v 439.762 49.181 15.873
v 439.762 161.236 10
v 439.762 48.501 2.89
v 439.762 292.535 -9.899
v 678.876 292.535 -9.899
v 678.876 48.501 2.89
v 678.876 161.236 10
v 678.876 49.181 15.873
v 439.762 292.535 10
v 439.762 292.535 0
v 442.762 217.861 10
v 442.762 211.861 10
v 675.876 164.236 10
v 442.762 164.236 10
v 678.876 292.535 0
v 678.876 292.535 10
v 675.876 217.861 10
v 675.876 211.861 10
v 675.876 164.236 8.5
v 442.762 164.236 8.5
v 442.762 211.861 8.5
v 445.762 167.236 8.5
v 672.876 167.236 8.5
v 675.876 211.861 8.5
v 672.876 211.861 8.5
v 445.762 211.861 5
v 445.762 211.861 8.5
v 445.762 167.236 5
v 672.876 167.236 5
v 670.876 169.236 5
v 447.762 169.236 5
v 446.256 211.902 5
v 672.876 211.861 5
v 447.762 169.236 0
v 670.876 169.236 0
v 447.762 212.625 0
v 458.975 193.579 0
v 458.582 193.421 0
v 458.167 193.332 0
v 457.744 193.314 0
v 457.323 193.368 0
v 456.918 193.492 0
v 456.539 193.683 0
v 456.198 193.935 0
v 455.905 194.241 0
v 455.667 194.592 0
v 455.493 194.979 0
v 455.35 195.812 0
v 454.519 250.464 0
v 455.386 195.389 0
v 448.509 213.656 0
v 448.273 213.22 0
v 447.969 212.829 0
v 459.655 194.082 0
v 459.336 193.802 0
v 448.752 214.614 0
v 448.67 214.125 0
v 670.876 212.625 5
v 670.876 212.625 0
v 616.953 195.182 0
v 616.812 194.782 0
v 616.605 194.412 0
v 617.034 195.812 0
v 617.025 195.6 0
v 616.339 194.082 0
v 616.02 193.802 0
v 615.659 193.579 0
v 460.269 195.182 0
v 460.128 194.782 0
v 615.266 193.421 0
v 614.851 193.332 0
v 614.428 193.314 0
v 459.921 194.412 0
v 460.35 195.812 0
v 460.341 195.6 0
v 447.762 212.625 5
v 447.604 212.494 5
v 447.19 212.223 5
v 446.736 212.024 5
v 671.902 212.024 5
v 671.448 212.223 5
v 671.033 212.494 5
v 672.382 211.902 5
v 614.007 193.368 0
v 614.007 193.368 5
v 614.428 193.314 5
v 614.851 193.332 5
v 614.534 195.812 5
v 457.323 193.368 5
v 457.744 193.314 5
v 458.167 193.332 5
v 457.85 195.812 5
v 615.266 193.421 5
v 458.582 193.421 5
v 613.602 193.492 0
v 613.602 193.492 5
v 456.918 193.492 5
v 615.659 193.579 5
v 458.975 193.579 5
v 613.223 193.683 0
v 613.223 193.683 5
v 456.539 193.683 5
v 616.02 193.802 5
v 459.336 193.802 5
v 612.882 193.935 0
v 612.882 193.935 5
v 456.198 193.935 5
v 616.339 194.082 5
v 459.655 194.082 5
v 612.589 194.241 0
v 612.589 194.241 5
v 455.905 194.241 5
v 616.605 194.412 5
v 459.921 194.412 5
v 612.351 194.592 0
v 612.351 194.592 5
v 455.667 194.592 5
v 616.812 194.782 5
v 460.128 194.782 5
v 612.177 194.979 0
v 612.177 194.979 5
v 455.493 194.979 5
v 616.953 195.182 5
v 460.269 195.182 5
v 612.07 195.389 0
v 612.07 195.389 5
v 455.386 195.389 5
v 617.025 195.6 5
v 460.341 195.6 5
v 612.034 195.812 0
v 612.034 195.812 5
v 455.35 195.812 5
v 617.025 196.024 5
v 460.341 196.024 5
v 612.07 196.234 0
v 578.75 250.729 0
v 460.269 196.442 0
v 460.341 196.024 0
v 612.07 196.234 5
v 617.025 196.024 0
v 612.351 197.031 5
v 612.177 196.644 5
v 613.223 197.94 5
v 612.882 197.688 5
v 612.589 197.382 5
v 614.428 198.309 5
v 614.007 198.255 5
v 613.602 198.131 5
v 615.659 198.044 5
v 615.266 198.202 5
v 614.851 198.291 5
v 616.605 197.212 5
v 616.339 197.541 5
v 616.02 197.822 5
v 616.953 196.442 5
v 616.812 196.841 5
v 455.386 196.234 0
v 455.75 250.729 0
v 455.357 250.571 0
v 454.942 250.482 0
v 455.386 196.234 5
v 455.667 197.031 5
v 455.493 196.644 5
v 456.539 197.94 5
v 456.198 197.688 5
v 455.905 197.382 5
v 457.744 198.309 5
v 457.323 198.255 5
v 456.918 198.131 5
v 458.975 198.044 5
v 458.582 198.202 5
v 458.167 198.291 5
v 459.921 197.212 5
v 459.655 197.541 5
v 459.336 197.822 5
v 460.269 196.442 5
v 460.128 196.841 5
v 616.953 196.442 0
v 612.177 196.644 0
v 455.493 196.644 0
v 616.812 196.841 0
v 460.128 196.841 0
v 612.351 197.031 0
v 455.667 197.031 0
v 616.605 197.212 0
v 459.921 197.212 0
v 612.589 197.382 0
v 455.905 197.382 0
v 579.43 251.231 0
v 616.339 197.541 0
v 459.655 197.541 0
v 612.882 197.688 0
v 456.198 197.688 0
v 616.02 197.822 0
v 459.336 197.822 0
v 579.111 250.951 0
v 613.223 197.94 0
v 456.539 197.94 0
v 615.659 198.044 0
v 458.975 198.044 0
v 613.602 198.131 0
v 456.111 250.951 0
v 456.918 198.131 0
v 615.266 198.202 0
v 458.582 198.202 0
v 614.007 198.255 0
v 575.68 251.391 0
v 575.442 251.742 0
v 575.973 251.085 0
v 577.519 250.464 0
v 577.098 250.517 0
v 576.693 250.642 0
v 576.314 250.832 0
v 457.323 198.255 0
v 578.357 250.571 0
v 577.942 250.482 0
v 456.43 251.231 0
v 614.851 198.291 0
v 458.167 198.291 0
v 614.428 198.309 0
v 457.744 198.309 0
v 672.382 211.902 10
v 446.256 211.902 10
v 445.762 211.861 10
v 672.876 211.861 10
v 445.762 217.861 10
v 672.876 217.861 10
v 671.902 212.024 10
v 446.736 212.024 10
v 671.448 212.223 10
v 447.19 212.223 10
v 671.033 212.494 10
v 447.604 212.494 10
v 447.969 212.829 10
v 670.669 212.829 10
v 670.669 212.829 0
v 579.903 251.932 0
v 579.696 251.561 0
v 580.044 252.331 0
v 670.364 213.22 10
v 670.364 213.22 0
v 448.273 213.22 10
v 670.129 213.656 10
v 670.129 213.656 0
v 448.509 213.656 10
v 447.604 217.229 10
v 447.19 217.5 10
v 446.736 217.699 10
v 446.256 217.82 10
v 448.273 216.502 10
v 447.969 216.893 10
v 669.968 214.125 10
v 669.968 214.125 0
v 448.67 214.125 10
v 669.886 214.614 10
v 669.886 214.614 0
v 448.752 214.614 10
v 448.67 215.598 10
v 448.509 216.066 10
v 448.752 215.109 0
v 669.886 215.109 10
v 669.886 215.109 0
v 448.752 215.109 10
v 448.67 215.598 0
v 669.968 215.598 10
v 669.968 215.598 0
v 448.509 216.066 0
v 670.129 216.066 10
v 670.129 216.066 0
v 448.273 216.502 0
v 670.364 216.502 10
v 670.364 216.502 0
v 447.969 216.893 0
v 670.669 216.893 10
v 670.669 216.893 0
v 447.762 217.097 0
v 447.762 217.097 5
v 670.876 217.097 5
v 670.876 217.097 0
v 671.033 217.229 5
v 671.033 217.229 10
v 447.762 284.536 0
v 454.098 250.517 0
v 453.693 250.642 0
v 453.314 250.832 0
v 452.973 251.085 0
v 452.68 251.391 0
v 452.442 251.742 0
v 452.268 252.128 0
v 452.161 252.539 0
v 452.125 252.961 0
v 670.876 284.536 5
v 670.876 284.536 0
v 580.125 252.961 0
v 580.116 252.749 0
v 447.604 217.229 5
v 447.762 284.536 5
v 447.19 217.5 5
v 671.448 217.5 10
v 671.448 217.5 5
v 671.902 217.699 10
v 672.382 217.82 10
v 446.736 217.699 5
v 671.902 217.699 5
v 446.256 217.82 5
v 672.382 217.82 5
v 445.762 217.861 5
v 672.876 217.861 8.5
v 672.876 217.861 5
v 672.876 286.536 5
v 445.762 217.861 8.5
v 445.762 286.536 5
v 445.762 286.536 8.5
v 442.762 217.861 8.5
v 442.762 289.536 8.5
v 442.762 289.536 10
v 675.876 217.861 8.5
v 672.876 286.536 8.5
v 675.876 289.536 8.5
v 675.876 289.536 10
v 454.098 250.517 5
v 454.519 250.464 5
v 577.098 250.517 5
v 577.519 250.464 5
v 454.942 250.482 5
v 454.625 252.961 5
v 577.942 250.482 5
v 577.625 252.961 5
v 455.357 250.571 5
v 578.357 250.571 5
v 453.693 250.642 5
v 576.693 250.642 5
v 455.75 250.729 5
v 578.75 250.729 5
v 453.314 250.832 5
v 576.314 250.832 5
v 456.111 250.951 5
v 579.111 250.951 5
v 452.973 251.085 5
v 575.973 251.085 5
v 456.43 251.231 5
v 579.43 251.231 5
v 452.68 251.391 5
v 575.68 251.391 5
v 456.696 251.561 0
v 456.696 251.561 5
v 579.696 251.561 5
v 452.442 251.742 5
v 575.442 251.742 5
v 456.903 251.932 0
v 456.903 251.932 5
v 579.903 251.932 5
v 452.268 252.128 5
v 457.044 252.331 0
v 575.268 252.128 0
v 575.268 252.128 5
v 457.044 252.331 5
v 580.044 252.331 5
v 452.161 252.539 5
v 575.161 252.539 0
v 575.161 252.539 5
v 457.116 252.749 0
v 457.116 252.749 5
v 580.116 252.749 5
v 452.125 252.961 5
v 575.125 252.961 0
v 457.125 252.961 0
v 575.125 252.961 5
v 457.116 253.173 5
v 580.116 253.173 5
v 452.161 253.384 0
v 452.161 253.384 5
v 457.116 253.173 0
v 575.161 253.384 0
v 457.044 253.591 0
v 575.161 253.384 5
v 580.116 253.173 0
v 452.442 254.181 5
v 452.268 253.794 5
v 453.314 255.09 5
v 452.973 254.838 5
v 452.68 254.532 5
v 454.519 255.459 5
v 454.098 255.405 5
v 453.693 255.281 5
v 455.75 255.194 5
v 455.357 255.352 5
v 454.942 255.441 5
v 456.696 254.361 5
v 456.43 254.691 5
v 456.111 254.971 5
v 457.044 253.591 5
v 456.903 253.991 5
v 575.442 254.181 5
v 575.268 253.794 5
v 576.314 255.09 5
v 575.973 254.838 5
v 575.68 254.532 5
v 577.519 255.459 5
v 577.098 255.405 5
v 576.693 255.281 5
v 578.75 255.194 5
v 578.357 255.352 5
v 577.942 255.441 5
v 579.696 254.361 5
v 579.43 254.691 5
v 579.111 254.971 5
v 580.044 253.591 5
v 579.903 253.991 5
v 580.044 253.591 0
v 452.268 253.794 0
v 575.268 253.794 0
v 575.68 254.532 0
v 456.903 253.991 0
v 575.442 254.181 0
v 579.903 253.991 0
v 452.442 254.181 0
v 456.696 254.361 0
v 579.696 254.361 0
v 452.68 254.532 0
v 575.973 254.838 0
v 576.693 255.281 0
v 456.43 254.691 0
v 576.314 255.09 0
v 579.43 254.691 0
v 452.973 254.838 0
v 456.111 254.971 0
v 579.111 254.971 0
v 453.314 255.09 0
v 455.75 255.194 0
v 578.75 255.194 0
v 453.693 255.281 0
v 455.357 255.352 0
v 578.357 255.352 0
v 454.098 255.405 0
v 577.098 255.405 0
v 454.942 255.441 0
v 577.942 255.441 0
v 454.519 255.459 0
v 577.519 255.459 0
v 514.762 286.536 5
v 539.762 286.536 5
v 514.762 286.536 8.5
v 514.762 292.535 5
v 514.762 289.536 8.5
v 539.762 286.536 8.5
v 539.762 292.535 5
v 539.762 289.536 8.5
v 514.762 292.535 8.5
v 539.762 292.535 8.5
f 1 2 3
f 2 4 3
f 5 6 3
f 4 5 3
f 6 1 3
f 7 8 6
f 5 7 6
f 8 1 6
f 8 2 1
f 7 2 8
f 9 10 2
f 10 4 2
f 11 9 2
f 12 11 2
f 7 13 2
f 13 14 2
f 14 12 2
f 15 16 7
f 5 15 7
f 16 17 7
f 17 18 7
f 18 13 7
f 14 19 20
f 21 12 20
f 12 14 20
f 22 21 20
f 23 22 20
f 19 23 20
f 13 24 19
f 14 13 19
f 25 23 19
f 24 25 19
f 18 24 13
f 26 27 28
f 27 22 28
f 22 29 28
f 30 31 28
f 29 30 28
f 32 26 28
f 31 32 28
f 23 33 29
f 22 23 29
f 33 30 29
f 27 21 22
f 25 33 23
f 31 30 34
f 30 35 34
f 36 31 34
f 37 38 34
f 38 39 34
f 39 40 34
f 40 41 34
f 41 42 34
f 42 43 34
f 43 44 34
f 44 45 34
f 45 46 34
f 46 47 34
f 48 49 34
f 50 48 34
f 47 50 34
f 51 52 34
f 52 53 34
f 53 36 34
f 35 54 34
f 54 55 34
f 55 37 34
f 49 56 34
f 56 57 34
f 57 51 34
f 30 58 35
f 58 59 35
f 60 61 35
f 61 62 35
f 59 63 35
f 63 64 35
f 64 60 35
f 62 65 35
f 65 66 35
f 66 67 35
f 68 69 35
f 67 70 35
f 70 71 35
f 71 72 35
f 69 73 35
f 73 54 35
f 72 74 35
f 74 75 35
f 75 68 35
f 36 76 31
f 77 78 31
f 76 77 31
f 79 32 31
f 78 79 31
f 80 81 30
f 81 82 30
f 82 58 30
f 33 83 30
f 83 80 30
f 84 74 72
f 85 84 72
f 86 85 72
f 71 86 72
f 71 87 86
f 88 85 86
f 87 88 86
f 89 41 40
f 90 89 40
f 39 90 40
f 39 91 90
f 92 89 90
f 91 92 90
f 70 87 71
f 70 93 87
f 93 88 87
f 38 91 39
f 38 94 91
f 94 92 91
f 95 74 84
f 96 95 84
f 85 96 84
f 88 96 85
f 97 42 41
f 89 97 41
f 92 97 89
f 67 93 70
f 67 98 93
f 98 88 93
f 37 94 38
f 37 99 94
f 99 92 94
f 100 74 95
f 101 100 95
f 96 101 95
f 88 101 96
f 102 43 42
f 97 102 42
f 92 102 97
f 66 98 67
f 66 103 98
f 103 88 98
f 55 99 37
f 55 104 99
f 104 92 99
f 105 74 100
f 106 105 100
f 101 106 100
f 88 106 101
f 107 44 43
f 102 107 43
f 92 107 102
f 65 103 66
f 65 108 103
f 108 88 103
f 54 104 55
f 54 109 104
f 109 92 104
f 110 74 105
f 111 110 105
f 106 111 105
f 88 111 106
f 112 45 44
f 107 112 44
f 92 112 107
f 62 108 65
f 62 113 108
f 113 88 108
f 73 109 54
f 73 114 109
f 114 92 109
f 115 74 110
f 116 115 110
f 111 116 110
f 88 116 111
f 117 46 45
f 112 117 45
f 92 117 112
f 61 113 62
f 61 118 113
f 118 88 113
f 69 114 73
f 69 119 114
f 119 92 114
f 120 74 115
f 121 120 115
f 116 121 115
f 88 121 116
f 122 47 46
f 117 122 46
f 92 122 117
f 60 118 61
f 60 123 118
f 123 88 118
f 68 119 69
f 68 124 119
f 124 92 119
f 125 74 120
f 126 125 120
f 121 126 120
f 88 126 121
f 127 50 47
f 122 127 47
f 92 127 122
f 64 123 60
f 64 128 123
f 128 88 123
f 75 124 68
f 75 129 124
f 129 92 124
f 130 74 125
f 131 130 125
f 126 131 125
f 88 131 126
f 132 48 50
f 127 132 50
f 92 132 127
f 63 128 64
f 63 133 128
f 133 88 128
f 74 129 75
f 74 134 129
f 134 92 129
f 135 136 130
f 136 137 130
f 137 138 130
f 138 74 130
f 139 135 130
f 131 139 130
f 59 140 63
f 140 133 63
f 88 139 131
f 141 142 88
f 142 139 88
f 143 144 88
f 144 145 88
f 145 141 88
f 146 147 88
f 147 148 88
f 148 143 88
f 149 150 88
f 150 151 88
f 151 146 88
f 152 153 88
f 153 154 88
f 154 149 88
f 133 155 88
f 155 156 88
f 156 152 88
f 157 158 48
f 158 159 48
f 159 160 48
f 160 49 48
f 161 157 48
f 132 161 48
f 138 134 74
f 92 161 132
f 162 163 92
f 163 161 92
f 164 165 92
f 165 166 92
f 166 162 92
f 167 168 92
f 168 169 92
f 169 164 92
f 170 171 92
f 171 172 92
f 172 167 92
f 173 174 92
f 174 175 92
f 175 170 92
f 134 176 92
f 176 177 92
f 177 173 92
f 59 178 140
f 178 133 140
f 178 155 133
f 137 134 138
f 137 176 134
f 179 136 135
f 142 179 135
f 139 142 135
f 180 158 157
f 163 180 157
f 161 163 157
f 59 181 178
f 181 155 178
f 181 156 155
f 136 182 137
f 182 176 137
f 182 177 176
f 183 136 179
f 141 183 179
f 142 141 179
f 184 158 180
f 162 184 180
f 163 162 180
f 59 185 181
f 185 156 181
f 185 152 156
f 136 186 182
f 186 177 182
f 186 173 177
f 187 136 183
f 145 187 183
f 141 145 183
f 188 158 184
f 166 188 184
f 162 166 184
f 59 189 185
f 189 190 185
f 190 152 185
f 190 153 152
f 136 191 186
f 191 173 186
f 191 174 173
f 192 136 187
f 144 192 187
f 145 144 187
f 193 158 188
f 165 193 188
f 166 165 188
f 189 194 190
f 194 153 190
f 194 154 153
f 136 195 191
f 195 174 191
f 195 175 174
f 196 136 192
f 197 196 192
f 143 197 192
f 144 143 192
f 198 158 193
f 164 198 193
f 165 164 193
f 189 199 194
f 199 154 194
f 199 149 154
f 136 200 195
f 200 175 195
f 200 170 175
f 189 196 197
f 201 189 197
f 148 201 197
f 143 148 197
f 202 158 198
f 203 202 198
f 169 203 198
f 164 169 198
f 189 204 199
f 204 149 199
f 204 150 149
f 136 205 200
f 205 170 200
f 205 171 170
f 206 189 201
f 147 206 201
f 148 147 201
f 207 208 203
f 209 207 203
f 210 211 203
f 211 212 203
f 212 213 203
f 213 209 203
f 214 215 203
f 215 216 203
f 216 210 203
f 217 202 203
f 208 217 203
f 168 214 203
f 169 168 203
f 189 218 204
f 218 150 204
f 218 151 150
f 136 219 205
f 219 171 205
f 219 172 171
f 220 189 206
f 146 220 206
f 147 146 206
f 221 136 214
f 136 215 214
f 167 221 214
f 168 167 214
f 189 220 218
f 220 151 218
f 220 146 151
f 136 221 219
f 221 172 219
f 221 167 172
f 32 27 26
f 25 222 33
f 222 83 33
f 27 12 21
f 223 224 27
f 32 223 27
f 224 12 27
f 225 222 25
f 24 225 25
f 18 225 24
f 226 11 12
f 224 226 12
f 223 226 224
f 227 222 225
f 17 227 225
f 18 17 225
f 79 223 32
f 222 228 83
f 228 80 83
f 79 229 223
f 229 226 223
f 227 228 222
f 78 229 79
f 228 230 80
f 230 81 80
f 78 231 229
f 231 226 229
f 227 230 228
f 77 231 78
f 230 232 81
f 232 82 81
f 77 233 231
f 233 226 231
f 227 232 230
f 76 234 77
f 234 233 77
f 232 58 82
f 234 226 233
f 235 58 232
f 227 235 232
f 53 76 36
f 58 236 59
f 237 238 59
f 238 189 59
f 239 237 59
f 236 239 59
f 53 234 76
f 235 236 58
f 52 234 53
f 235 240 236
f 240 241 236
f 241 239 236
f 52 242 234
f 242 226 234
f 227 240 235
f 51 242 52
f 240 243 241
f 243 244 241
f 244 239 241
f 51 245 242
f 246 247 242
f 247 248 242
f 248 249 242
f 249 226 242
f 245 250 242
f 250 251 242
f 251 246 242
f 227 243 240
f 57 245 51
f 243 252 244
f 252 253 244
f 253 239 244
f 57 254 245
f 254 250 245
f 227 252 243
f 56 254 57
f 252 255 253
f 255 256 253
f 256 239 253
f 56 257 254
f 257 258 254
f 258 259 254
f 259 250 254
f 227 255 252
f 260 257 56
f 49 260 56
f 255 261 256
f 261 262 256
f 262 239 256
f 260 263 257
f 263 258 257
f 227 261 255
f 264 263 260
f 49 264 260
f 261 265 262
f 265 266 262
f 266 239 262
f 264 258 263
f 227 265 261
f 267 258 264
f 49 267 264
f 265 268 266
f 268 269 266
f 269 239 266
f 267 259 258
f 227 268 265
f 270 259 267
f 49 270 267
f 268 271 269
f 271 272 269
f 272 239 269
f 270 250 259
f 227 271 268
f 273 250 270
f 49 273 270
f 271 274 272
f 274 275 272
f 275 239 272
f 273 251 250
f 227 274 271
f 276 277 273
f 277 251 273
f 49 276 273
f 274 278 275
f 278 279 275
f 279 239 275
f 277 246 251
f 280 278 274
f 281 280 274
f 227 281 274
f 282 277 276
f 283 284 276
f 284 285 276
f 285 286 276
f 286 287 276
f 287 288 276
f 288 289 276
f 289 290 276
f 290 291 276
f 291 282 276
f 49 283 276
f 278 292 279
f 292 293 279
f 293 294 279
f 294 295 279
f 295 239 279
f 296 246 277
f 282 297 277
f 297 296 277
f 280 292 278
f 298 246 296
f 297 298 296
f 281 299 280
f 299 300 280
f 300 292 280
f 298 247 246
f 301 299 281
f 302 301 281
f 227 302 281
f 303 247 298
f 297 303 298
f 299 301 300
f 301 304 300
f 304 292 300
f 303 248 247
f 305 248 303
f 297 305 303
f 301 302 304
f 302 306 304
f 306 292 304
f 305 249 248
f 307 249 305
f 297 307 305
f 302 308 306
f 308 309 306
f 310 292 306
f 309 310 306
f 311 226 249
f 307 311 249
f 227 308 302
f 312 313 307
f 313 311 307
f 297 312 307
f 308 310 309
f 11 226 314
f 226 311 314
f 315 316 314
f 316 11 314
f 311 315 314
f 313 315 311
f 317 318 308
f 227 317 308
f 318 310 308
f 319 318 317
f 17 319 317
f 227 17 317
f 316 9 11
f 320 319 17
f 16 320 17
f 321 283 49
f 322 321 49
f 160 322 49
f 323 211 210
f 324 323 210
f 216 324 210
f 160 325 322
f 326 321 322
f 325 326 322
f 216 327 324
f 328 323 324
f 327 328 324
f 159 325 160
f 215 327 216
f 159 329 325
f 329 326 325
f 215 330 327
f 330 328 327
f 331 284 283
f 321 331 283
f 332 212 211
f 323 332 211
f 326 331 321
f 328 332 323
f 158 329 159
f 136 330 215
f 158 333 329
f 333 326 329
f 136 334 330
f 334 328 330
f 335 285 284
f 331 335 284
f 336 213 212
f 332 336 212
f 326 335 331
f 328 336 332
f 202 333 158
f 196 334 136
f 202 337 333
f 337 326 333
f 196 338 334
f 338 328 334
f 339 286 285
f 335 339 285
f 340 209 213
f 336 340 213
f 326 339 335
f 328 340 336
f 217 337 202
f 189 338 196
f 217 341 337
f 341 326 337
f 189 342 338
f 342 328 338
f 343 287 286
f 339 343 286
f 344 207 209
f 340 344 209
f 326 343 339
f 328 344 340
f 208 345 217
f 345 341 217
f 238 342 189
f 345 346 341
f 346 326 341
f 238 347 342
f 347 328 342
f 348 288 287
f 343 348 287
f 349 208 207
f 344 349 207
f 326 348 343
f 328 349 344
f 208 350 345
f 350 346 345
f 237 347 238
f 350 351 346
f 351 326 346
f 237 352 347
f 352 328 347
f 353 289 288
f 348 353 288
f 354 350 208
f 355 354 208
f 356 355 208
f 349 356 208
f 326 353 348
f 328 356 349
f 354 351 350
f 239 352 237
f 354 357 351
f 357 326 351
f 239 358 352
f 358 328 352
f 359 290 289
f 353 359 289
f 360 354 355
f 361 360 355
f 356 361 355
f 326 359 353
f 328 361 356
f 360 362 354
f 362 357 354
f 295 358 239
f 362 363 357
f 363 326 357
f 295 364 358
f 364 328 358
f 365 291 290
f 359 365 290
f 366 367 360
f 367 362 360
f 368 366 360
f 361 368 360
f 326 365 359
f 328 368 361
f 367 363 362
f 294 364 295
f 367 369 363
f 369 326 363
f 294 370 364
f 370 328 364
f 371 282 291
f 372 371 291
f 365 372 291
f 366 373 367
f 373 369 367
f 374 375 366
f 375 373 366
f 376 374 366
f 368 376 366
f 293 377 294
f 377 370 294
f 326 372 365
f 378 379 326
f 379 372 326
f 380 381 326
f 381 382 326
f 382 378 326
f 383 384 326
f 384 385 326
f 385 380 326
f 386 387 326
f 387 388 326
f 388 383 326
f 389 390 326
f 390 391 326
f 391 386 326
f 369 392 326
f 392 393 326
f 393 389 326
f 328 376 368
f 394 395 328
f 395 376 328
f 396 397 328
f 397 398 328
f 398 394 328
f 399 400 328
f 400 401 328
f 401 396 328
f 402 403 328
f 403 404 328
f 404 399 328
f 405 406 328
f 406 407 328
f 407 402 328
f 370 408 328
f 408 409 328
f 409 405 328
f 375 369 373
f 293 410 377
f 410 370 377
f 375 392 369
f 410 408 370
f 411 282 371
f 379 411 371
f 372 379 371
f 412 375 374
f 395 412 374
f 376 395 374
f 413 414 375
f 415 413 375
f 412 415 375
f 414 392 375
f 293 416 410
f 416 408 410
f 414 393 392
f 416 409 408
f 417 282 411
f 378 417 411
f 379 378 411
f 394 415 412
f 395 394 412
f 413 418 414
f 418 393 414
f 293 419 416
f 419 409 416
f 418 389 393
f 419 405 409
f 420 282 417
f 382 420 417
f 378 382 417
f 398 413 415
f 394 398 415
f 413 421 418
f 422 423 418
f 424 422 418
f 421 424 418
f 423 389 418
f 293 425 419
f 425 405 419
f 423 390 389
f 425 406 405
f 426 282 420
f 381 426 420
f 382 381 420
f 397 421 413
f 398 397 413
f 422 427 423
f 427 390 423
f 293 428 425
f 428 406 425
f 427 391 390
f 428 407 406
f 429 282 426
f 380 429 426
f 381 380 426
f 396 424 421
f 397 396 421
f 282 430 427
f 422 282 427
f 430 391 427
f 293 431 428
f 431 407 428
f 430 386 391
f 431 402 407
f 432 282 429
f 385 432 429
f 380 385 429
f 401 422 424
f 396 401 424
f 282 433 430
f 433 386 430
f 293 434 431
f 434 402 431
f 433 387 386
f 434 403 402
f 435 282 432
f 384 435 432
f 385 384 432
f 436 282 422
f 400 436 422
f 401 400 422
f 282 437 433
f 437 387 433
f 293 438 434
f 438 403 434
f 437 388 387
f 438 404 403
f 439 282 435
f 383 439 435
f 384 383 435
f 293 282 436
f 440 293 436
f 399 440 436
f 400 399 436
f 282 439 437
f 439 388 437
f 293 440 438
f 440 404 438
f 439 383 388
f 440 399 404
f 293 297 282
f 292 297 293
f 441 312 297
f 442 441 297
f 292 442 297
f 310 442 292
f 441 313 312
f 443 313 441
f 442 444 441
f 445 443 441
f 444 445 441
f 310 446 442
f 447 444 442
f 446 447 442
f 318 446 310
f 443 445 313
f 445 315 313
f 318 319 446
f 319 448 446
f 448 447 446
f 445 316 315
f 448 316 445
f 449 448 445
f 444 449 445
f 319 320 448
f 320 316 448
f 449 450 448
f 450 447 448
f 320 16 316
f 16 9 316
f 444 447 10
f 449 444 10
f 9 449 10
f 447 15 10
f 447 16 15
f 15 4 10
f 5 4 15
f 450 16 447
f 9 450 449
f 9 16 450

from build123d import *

# Parameters (mm, degrees)
MODEL_W             = 239.114
MODEL_H             = 131.298938207
EXTRUDE_2_DEPTH     = 10
EXTRUDE_3_DEPTH     = 8.5
EXTRUDE_4_DEPTH     = 5
SKETCH_3_R          = 2.5
EXTRUDE_5_DEPTH     = 5
EXTRUDE_5_2_DEPTH   = 5
EXTRUDE_5_3_DEPTH   = 5
EXTRUDE_5_4_DEPTH   = 5
EXTRUDE_6_DEPTH     = 239.114
SKETCH_5_W          = 25
SKETCH_5_H          = 5.998631207
CUT_EXTRUDE_1_DEPTH = 3.5


with BuildPart() as part:
    # Model → 凸台-拉伸2 (new body)
    with BuildSketch(Plane.XY):
        with Locations((559.31883528, 226.885059923)):
            Rectangle(MODEL_W, MODEL_H)
        with BuildLine():
            Line((442.76183528, 289.535897819), (675.87583528, 289.535897819))
            Line((675.87583528, 289.535897819), (675.87583528, 217.861297819))
            Line((675.87583528, 217.861297819), (672.87583528, 217.861297819))
            ThreePointArc((672.87583528, 217.861297819), (671.805369011, 217.663814896), (670.87583528, 217.097365797))
            ThreePointArc((670.87583528, 217.097365797), (669.87583528, 214.861297819), (670.87583528, 212.625229842))
            ThreePointArc((670.87583528, 212.625229842), (671.805369011, 212.058780742), (672.87583528, 211.861297819))
            Line((672.87583528, 211.861297819), (675.87583528, 211.861297819))
            Line((675.87583528, 211.861297819), (675.87583528, 164.235590819))
            Line((675.87583528, 164.235590819), (442.76183528, 164.235590819))
            Line((442.76183528, 164.235590819), (442.76183528, 211.861297819))
            Line((442.76183528, 211.861297819), (445.76183528, 211.861297819))
            ThreePointArc((445.76183528, 211.861297819), (446.832301549, 212.058780742), (447.76183528, 212.625229842))
            ThreePointArc((447.76183528, 212.625229842), (448.76183528, 214.861297819), (447.76183528, 217.097365797))
            ThreePointArc((447.76183528, 217.097365797), (446.832301549, 217.663814896), (445.76183528, 217.861297819))
            Line((445.76183528, 217.861297819), (442.76183528, 217.861297819))
            Line((442.76183528, 217.861297819), (442.76183528, 289.535897819))
        make_face(mode=Mode.SUBTRACT)
    extrude(amount=EXTRUDE_2_DEPTH)

    # Model<4> → 凸台-拉伸3 (add)
    with BuildSketch(Plane.XY):
        Polygon((445.76183528, 167.235590819), (445.76183528, 211.861297819), (442.76183528, 211.861297819), (442.76183528, 164.235590819), (675.87583528, 164.235590819), (675.87583528, 211.861297819), (672.87583528, 211.861297819), (672.87583528, 167.235590819), align=None)
        Polygon((442.76183528, 217.861297819), (442.76183528, 289.535897819), (675.87583528, 289.535897819), (675.87583528, 217.861297819), (672.87583528, 217.861297819), (672.87583528, 286.535897819), (445.76183528, 286.535897819), (445.76183528, 217.861297819), align=None)
    extrude(amount=EXTRUDE_3_DEPTH)

    # Model<5> → 凸台-拉伸4 (add)
    with BuildSketch(Plane.XY):
        with BuildLine():
            ThreePointArc((672.87583528, 211.861297819), (671.805369011, 212.058780742), (670.87583528, 212.625229842))
            Line((670.87583528, 212.625229842), (670.87583528, 169.235590819))
            Line((670.87583528, 169.235590819), (447.76183528, 169.235590819))
            Line((447.76183528, 169.235590819), (447.76183528, 212.625229842))
            ThreePointArc((447.76183528, 212.625229842), (446.832301549, 212.058780742), (445.76183528, 211.861297819))
            Line((445.76183528, 211.861297819), (445.76183528, 167.235590819))
            Line((445.76183528, 167.235590819), (672.87583528, 167.235590819))
            Line((672.87583528, 167.235590819), (672.87583528, 211.861297819))
        make_face()
        with BuildLine():
            ThreePointArc((670.87583528, 217.097365797), (671.805369011, 217.663814896), (672.87583528, 217.861297819))
            Line((672.87583528, 217.861297819), (672.87583528, 286.535897819))
            Line((672.87583528, 286.535897819), (539.76183528, 286.535897819))
            Line((539.76183528, 286.535897819), (514.76183528, 286.535897819))
            Line((514.76183528, 286.535897819), (445.76183528, 286.535897819))
            Line((445.76183528, 286.535897819), (445.76183528, 217.861297819))
            ThreePointArc((445.76183528, 217.861297819), (446.832301549, 217.663814896), (447.76183528, 217.097365797))
            Line((447.76183528, 217.097365797), (447.76183528, 284.535897819))
            Line((447.76183528, 284.535897819), (670.87583528, 284.535897819))
            Line((670.87583528, 284.535897819), (670.87583528, 217.097365797))
        make_face()
    extrude(amount=EXTRUDE_4_DEPTH)



with BuildPart() as body_2:
    # 草图3 → 凸台-拉伸5 (new body)
    with BuildSketch(Plane(origin=(0, 0, 0), x_dir=(-1, 0, 0), z_dir=(0, 0, -1))):
        with Locations((-577.62472278, 252.961297819)):
            Circle(SKETCH_3_R)
    extrude(amount=-EXTRUDE_5_DEPTH)


with BuildPart() as body_3:
    # 草图3 → Extrude 5 2 (new body)
    with BuildSketch(Plane(origin=(0, 0, 0), x_dir=(-1, 0, 0), z_dir=(0, 0, -1))):
        with Locations((-614.53372278, 195.811572819)):
            Circle(SKETCH_3_R)
    extrude(amount=-EXTRUDE_5_2_DEPTH)


with BuildPart() as body_4:
    # 草图3 → Extrude 5 3 (new body)
    with BuildSketch(Plane(origin=(0, 0, 0), x_dir=(-1, 0, 0), z_dir=(0, 0, -1))):
        with Locations((-457.84983528, 195.811597819)):
            Circle(SKETCH_3_R)
    extrude(amount=-EXTRUDE_5_3_DEPTH)


with BuildPart() as body_5:
    # 草图3 → Extrude 5 4 (new body)
    with BuildSketch(Plane(origin=(0, 0, 0), x_dir=(-1, 0, 0), z_dir=(0, 0, -1))):
        with Locations((-454.62472278, 252.961297819)):
            Circle(SKETCH_3_R)
    extrude(amount=-EXTRUDE_5_4_DEPTH)


with BuildPart() as part_1:
    add(part.part)

    add(body_2.part)  # 凸台-拉伸6 merges body 2

    add(body_3.part)  # 凸台-拉伸6 merges body 3

    add(body_4.part)  # 凸台-拉伸6 merges body 4

    add(body_5.part)  # 凸台-拉伸6 merges body 5
    # 草图4 → 凸台-拉伸6 (add)
    with BuildSketch(Plane.ZY.offset(-439.76183528)):
        Polygon((-9.898975205, 292.535462726), (2.890322341, 48.501128108), (15.872506293, 49.181495539), (10, 161.235590819), (0, 161.235590819), (0, 292.534529026), align=None)
    extrude(amount=-EXTRUDE_6_DEPTH)

    # 草图5 → 切除-拉伸1 (cut)
    with BuildSketch(Plane.XY.offset(8.5)):
        with Locations((527.26183528, 289.535213423)):
            Rectangle(SKETCH_5_W, SKETCH_5_H)
    extrude(amount=-CUT_EXTRUDE_1_DEPTH, mode=Mode.SUBTRACT)


solid = part_1.part
